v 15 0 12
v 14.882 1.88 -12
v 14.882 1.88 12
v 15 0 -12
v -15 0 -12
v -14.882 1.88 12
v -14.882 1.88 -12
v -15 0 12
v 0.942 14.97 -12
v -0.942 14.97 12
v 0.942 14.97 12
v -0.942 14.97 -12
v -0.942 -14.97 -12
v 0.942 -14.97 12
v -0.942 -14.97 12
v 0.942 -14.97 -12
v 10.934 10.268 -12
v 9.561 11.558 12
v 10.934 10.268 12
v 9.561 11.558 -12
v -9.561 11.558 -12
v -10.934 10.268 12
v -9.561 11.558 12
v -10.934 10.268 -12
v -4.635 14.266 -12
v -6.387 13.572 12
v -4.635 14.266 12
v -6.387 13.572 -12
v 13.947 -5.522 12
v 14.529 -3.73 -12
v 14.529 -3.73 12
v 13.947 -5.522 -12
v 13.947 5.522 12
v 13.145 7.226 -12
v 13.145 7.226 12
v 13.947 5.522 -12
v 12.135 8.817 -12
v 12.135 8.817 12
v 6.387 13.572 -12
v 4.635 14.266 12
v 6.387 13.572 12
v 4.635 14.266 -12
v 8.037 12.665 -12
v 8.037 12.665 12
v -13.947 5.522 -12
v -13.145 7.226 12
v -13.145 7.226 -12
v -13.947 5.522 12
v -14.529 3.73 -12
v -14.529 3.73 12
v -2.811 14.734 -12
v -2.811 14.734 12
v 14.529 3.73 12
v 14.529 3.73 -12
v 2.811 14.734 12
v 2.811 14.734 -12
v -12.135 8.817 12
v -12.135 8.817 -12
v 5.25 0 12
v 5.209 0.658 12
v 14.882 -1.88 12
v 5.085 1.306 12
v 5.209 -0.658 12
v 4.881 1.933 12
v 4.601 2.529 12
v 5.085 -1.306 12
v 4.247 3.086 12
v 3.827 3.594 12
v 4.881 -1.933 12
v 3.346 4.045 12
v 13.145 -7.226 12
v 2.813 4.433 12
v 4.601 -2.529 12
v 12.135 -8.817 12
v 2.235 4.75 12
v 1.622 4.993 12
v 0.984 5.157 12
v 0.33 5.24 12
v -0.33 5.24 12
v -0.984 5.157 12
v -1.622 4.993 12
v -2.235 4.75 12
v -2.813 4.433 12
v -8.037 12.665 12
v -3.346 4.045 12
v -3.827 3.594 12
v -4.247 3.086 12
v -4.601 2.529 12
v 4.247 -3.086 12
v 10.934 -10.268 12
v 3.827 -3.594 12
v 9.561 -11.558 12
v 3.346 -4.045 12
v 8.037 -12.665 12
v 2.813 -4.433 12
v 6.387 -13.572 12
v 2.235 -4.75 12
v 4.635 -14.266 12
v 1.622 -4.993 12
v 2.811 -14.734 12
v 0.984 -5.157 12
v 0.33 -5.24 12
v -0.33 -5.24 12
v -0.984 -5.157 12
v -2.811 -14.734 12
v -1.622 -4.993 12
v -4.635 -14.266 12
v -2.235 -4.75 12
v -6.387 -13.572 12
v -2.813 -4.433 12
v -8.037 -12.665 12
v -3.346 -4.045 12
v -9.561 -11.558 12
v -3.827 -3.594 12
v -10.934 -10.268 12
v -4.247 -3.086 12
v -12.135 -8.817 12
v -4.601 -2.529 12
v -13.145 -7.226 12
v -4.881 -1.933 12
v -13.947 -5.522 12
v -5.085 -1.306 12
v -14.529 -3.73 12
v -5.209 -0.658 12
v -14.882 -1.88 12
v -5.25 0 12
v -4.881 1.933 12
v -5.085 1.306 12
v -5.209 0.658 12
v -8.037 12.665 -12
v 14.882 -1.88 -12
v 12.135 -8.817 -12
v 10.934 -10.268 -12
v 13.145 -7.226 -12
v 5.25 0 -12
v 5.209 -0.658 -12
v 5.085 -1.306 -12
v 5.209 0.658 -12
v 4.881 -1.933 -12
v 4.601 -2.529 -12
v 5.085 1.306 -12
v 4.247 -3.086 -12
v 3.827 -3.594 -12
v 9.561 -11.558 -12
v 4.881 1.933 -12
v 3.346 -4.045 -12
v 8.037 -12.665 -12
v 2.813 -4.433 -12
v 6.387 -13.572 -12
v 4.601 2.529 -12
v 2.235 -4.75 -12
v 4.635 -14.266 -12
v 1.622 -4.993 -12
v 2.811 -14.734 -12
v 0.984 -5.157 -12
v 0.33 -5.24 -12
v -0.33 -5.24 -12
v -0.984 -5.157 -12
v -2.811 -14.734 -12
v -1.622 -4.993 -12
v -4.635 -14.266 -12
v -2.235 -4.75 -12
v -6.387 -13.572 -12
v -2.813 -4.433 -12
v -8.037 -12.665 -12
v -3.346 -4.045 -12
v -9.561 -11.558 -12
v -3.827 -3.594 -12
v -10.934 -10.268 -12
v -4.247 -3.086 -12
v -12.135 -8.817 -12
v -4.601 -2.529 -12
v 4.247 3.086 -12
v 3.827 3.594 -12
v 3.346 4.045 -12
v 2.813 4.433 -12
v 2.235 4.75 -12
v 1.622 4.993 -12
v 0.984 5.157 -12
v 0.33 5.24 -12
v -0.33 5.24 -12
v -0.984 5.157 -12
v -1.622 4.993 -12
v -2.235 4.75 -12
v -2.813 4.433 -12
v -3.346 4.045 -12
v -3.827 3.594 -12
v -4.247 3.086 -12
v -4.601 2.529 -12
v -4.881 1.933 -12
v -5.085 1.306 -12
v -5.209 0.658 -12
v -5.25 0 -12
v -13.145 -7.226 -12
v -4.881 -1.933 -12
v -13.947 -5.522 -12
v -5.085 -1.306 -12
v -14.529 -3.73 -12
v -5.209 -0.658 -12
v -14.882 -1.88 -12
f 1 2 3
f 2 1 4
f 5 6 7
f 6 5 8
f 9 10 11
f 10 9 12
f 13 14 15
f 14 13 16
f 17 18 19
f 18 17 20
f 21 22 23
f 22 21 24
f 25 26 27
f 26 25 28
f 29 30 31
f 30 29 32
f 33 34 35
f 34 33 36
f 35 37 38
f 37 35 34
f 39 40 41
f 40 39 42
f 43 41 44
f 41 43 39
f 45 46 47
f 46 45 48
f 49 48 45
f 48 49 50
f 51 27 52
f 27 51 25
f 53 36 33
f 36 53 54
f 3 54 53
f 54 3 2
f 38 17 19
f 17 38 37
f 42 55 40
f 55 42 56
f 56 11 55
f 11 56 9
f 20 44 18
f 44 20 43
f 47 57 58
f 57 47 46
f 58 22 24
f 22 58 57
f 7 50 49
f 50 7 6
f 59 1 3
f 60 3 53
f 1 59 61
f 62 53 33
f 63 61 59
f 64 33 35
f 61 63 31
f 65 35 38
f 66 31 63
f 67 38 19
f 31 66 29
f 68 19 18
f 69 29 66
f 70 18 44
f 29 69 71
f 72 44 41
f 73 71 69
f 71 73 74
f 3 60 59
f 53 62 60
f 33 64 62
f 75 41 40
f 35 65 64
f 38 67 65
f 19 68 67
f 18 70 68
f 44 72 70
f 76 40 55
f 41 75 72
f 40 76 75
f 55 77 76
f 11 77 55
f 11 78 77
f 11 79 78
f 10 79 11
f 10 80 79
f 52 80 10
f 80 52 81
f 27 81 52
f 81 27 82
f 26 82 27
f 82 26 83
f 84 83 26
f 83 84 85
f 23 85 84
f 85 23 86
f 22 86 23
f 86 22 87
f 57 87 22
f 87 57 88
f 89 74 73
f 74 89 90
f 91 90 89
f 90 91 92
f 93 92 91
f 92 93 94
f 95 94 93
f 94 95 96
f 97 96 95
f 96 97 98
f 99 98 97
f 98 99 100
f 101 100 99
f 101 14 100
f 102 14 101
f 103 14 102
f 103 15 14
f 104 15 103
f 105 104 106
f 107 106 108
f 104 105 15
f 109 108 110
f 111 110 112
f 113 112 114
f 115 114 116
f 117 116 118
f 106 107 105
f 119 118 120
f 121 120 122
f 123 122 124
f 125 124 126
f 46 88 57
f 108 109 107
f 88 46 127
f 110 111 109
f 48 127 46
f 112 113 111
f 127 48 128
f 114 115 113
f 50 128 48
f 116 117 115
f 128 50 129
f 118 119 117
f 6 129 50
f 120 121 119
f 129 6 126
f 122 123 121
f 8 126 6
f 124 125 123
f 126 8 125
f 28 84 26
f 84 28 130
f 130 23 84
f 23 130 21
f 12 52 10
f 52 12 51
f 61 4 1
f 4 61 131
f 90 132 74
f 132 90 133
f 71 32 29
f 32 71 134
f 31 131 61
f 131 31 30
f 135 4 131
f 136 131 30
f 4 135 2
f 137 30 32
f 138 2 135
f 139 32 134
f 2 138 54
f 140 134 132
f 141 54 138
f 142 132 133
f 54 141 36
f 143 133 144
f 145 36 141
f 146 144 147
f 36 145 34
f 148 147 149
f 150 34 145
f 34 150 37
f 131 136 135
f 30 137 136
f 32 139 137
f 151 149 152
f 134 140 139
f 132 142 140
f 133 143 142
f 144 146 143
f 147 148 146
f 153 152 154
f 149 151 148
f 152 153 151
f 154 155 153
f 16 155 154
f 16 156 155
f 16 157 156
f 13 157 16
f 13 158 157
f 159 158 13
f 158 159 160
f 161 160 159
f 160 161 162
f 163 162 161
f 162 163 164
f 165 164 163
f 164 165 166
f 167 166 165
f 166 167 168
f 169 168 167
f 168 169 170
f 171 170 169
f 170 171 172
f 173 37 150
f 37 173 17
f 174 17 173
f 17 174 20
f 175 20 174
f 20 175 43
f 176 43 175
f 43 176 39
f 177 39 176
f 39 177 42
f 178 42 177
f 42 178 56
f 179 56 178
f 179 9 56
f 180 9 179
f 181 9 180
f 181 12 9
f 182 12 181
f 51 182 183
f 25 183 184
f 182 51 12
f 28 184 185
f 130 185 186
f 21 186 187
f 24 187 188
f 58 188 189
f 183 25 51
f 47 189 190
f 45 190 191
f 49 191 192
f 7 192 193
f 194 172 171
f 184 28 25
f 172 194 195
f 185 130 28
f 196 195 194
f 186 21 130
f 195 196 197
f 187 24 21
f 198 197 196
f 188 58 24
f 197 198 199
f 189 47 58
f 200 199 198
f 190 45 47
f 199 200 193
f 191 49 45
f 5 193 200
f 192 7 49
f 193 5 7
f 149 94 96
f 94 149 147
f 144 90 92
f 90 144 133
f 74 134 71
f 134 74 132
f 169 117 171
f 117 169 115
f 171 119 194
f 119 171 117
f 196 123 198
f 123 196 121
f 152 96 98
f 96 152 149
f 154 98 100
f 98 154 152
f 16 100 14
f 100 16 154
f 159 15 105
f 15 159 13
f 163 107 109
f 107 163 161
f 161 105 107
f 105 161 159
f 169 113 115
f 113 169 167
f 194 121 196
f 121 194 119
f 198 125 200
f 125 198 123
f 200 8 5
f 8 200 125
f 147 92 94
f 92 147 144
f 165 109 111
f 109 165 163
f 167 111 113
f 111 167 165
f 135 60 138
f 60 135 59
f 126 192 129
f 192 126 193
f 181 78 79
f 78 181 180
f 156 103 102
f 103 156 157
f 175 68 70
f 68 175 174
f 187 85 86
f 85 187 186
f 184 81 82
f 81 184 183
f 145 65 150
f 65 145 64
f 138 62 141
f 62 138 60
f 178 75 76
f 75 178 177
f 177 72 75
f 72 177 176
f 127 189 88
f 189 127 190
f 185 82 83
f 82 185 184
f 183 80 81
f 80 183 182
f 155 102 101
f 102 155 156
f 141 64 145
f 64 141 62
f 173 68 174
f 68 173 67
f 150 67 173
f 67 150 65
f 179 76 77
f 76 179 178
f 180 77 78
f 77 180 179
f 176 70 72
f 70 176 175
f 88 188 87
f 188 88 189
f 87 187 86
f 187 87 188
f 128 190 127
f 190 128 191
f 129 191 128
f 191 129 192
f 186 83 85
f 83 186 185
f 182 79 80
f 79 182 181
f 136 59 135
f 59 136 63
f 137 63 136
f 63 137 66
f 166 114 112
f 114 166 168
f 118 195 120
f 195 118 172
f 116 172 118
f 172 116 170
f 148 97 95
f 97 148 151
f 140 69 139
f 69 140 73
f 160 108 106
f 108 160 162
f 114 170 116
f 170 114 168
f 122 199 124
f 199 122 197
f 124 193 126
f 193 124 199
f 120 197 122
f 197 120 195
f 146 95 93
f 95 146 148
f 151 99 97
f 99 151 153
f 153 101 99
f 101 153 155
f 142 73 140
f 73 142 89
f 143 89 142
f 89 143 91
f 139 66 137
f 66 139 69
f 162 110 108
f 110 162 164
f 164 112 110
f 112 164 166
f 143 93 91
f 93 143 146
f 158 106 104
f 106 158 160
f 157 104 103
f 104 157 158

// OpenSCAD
$fn = 50;


difference() {
	union() {
		translate(v = [0, 0, -12.0000000000]) {
			cylinder(h = 24, r = 15.0000000000);
		}
	}
	union() {
		translate(v = [0, 0, -100.0000000000]) {
			cylinder(h = 200, r = 5.2500000000);
		}
	}
}
